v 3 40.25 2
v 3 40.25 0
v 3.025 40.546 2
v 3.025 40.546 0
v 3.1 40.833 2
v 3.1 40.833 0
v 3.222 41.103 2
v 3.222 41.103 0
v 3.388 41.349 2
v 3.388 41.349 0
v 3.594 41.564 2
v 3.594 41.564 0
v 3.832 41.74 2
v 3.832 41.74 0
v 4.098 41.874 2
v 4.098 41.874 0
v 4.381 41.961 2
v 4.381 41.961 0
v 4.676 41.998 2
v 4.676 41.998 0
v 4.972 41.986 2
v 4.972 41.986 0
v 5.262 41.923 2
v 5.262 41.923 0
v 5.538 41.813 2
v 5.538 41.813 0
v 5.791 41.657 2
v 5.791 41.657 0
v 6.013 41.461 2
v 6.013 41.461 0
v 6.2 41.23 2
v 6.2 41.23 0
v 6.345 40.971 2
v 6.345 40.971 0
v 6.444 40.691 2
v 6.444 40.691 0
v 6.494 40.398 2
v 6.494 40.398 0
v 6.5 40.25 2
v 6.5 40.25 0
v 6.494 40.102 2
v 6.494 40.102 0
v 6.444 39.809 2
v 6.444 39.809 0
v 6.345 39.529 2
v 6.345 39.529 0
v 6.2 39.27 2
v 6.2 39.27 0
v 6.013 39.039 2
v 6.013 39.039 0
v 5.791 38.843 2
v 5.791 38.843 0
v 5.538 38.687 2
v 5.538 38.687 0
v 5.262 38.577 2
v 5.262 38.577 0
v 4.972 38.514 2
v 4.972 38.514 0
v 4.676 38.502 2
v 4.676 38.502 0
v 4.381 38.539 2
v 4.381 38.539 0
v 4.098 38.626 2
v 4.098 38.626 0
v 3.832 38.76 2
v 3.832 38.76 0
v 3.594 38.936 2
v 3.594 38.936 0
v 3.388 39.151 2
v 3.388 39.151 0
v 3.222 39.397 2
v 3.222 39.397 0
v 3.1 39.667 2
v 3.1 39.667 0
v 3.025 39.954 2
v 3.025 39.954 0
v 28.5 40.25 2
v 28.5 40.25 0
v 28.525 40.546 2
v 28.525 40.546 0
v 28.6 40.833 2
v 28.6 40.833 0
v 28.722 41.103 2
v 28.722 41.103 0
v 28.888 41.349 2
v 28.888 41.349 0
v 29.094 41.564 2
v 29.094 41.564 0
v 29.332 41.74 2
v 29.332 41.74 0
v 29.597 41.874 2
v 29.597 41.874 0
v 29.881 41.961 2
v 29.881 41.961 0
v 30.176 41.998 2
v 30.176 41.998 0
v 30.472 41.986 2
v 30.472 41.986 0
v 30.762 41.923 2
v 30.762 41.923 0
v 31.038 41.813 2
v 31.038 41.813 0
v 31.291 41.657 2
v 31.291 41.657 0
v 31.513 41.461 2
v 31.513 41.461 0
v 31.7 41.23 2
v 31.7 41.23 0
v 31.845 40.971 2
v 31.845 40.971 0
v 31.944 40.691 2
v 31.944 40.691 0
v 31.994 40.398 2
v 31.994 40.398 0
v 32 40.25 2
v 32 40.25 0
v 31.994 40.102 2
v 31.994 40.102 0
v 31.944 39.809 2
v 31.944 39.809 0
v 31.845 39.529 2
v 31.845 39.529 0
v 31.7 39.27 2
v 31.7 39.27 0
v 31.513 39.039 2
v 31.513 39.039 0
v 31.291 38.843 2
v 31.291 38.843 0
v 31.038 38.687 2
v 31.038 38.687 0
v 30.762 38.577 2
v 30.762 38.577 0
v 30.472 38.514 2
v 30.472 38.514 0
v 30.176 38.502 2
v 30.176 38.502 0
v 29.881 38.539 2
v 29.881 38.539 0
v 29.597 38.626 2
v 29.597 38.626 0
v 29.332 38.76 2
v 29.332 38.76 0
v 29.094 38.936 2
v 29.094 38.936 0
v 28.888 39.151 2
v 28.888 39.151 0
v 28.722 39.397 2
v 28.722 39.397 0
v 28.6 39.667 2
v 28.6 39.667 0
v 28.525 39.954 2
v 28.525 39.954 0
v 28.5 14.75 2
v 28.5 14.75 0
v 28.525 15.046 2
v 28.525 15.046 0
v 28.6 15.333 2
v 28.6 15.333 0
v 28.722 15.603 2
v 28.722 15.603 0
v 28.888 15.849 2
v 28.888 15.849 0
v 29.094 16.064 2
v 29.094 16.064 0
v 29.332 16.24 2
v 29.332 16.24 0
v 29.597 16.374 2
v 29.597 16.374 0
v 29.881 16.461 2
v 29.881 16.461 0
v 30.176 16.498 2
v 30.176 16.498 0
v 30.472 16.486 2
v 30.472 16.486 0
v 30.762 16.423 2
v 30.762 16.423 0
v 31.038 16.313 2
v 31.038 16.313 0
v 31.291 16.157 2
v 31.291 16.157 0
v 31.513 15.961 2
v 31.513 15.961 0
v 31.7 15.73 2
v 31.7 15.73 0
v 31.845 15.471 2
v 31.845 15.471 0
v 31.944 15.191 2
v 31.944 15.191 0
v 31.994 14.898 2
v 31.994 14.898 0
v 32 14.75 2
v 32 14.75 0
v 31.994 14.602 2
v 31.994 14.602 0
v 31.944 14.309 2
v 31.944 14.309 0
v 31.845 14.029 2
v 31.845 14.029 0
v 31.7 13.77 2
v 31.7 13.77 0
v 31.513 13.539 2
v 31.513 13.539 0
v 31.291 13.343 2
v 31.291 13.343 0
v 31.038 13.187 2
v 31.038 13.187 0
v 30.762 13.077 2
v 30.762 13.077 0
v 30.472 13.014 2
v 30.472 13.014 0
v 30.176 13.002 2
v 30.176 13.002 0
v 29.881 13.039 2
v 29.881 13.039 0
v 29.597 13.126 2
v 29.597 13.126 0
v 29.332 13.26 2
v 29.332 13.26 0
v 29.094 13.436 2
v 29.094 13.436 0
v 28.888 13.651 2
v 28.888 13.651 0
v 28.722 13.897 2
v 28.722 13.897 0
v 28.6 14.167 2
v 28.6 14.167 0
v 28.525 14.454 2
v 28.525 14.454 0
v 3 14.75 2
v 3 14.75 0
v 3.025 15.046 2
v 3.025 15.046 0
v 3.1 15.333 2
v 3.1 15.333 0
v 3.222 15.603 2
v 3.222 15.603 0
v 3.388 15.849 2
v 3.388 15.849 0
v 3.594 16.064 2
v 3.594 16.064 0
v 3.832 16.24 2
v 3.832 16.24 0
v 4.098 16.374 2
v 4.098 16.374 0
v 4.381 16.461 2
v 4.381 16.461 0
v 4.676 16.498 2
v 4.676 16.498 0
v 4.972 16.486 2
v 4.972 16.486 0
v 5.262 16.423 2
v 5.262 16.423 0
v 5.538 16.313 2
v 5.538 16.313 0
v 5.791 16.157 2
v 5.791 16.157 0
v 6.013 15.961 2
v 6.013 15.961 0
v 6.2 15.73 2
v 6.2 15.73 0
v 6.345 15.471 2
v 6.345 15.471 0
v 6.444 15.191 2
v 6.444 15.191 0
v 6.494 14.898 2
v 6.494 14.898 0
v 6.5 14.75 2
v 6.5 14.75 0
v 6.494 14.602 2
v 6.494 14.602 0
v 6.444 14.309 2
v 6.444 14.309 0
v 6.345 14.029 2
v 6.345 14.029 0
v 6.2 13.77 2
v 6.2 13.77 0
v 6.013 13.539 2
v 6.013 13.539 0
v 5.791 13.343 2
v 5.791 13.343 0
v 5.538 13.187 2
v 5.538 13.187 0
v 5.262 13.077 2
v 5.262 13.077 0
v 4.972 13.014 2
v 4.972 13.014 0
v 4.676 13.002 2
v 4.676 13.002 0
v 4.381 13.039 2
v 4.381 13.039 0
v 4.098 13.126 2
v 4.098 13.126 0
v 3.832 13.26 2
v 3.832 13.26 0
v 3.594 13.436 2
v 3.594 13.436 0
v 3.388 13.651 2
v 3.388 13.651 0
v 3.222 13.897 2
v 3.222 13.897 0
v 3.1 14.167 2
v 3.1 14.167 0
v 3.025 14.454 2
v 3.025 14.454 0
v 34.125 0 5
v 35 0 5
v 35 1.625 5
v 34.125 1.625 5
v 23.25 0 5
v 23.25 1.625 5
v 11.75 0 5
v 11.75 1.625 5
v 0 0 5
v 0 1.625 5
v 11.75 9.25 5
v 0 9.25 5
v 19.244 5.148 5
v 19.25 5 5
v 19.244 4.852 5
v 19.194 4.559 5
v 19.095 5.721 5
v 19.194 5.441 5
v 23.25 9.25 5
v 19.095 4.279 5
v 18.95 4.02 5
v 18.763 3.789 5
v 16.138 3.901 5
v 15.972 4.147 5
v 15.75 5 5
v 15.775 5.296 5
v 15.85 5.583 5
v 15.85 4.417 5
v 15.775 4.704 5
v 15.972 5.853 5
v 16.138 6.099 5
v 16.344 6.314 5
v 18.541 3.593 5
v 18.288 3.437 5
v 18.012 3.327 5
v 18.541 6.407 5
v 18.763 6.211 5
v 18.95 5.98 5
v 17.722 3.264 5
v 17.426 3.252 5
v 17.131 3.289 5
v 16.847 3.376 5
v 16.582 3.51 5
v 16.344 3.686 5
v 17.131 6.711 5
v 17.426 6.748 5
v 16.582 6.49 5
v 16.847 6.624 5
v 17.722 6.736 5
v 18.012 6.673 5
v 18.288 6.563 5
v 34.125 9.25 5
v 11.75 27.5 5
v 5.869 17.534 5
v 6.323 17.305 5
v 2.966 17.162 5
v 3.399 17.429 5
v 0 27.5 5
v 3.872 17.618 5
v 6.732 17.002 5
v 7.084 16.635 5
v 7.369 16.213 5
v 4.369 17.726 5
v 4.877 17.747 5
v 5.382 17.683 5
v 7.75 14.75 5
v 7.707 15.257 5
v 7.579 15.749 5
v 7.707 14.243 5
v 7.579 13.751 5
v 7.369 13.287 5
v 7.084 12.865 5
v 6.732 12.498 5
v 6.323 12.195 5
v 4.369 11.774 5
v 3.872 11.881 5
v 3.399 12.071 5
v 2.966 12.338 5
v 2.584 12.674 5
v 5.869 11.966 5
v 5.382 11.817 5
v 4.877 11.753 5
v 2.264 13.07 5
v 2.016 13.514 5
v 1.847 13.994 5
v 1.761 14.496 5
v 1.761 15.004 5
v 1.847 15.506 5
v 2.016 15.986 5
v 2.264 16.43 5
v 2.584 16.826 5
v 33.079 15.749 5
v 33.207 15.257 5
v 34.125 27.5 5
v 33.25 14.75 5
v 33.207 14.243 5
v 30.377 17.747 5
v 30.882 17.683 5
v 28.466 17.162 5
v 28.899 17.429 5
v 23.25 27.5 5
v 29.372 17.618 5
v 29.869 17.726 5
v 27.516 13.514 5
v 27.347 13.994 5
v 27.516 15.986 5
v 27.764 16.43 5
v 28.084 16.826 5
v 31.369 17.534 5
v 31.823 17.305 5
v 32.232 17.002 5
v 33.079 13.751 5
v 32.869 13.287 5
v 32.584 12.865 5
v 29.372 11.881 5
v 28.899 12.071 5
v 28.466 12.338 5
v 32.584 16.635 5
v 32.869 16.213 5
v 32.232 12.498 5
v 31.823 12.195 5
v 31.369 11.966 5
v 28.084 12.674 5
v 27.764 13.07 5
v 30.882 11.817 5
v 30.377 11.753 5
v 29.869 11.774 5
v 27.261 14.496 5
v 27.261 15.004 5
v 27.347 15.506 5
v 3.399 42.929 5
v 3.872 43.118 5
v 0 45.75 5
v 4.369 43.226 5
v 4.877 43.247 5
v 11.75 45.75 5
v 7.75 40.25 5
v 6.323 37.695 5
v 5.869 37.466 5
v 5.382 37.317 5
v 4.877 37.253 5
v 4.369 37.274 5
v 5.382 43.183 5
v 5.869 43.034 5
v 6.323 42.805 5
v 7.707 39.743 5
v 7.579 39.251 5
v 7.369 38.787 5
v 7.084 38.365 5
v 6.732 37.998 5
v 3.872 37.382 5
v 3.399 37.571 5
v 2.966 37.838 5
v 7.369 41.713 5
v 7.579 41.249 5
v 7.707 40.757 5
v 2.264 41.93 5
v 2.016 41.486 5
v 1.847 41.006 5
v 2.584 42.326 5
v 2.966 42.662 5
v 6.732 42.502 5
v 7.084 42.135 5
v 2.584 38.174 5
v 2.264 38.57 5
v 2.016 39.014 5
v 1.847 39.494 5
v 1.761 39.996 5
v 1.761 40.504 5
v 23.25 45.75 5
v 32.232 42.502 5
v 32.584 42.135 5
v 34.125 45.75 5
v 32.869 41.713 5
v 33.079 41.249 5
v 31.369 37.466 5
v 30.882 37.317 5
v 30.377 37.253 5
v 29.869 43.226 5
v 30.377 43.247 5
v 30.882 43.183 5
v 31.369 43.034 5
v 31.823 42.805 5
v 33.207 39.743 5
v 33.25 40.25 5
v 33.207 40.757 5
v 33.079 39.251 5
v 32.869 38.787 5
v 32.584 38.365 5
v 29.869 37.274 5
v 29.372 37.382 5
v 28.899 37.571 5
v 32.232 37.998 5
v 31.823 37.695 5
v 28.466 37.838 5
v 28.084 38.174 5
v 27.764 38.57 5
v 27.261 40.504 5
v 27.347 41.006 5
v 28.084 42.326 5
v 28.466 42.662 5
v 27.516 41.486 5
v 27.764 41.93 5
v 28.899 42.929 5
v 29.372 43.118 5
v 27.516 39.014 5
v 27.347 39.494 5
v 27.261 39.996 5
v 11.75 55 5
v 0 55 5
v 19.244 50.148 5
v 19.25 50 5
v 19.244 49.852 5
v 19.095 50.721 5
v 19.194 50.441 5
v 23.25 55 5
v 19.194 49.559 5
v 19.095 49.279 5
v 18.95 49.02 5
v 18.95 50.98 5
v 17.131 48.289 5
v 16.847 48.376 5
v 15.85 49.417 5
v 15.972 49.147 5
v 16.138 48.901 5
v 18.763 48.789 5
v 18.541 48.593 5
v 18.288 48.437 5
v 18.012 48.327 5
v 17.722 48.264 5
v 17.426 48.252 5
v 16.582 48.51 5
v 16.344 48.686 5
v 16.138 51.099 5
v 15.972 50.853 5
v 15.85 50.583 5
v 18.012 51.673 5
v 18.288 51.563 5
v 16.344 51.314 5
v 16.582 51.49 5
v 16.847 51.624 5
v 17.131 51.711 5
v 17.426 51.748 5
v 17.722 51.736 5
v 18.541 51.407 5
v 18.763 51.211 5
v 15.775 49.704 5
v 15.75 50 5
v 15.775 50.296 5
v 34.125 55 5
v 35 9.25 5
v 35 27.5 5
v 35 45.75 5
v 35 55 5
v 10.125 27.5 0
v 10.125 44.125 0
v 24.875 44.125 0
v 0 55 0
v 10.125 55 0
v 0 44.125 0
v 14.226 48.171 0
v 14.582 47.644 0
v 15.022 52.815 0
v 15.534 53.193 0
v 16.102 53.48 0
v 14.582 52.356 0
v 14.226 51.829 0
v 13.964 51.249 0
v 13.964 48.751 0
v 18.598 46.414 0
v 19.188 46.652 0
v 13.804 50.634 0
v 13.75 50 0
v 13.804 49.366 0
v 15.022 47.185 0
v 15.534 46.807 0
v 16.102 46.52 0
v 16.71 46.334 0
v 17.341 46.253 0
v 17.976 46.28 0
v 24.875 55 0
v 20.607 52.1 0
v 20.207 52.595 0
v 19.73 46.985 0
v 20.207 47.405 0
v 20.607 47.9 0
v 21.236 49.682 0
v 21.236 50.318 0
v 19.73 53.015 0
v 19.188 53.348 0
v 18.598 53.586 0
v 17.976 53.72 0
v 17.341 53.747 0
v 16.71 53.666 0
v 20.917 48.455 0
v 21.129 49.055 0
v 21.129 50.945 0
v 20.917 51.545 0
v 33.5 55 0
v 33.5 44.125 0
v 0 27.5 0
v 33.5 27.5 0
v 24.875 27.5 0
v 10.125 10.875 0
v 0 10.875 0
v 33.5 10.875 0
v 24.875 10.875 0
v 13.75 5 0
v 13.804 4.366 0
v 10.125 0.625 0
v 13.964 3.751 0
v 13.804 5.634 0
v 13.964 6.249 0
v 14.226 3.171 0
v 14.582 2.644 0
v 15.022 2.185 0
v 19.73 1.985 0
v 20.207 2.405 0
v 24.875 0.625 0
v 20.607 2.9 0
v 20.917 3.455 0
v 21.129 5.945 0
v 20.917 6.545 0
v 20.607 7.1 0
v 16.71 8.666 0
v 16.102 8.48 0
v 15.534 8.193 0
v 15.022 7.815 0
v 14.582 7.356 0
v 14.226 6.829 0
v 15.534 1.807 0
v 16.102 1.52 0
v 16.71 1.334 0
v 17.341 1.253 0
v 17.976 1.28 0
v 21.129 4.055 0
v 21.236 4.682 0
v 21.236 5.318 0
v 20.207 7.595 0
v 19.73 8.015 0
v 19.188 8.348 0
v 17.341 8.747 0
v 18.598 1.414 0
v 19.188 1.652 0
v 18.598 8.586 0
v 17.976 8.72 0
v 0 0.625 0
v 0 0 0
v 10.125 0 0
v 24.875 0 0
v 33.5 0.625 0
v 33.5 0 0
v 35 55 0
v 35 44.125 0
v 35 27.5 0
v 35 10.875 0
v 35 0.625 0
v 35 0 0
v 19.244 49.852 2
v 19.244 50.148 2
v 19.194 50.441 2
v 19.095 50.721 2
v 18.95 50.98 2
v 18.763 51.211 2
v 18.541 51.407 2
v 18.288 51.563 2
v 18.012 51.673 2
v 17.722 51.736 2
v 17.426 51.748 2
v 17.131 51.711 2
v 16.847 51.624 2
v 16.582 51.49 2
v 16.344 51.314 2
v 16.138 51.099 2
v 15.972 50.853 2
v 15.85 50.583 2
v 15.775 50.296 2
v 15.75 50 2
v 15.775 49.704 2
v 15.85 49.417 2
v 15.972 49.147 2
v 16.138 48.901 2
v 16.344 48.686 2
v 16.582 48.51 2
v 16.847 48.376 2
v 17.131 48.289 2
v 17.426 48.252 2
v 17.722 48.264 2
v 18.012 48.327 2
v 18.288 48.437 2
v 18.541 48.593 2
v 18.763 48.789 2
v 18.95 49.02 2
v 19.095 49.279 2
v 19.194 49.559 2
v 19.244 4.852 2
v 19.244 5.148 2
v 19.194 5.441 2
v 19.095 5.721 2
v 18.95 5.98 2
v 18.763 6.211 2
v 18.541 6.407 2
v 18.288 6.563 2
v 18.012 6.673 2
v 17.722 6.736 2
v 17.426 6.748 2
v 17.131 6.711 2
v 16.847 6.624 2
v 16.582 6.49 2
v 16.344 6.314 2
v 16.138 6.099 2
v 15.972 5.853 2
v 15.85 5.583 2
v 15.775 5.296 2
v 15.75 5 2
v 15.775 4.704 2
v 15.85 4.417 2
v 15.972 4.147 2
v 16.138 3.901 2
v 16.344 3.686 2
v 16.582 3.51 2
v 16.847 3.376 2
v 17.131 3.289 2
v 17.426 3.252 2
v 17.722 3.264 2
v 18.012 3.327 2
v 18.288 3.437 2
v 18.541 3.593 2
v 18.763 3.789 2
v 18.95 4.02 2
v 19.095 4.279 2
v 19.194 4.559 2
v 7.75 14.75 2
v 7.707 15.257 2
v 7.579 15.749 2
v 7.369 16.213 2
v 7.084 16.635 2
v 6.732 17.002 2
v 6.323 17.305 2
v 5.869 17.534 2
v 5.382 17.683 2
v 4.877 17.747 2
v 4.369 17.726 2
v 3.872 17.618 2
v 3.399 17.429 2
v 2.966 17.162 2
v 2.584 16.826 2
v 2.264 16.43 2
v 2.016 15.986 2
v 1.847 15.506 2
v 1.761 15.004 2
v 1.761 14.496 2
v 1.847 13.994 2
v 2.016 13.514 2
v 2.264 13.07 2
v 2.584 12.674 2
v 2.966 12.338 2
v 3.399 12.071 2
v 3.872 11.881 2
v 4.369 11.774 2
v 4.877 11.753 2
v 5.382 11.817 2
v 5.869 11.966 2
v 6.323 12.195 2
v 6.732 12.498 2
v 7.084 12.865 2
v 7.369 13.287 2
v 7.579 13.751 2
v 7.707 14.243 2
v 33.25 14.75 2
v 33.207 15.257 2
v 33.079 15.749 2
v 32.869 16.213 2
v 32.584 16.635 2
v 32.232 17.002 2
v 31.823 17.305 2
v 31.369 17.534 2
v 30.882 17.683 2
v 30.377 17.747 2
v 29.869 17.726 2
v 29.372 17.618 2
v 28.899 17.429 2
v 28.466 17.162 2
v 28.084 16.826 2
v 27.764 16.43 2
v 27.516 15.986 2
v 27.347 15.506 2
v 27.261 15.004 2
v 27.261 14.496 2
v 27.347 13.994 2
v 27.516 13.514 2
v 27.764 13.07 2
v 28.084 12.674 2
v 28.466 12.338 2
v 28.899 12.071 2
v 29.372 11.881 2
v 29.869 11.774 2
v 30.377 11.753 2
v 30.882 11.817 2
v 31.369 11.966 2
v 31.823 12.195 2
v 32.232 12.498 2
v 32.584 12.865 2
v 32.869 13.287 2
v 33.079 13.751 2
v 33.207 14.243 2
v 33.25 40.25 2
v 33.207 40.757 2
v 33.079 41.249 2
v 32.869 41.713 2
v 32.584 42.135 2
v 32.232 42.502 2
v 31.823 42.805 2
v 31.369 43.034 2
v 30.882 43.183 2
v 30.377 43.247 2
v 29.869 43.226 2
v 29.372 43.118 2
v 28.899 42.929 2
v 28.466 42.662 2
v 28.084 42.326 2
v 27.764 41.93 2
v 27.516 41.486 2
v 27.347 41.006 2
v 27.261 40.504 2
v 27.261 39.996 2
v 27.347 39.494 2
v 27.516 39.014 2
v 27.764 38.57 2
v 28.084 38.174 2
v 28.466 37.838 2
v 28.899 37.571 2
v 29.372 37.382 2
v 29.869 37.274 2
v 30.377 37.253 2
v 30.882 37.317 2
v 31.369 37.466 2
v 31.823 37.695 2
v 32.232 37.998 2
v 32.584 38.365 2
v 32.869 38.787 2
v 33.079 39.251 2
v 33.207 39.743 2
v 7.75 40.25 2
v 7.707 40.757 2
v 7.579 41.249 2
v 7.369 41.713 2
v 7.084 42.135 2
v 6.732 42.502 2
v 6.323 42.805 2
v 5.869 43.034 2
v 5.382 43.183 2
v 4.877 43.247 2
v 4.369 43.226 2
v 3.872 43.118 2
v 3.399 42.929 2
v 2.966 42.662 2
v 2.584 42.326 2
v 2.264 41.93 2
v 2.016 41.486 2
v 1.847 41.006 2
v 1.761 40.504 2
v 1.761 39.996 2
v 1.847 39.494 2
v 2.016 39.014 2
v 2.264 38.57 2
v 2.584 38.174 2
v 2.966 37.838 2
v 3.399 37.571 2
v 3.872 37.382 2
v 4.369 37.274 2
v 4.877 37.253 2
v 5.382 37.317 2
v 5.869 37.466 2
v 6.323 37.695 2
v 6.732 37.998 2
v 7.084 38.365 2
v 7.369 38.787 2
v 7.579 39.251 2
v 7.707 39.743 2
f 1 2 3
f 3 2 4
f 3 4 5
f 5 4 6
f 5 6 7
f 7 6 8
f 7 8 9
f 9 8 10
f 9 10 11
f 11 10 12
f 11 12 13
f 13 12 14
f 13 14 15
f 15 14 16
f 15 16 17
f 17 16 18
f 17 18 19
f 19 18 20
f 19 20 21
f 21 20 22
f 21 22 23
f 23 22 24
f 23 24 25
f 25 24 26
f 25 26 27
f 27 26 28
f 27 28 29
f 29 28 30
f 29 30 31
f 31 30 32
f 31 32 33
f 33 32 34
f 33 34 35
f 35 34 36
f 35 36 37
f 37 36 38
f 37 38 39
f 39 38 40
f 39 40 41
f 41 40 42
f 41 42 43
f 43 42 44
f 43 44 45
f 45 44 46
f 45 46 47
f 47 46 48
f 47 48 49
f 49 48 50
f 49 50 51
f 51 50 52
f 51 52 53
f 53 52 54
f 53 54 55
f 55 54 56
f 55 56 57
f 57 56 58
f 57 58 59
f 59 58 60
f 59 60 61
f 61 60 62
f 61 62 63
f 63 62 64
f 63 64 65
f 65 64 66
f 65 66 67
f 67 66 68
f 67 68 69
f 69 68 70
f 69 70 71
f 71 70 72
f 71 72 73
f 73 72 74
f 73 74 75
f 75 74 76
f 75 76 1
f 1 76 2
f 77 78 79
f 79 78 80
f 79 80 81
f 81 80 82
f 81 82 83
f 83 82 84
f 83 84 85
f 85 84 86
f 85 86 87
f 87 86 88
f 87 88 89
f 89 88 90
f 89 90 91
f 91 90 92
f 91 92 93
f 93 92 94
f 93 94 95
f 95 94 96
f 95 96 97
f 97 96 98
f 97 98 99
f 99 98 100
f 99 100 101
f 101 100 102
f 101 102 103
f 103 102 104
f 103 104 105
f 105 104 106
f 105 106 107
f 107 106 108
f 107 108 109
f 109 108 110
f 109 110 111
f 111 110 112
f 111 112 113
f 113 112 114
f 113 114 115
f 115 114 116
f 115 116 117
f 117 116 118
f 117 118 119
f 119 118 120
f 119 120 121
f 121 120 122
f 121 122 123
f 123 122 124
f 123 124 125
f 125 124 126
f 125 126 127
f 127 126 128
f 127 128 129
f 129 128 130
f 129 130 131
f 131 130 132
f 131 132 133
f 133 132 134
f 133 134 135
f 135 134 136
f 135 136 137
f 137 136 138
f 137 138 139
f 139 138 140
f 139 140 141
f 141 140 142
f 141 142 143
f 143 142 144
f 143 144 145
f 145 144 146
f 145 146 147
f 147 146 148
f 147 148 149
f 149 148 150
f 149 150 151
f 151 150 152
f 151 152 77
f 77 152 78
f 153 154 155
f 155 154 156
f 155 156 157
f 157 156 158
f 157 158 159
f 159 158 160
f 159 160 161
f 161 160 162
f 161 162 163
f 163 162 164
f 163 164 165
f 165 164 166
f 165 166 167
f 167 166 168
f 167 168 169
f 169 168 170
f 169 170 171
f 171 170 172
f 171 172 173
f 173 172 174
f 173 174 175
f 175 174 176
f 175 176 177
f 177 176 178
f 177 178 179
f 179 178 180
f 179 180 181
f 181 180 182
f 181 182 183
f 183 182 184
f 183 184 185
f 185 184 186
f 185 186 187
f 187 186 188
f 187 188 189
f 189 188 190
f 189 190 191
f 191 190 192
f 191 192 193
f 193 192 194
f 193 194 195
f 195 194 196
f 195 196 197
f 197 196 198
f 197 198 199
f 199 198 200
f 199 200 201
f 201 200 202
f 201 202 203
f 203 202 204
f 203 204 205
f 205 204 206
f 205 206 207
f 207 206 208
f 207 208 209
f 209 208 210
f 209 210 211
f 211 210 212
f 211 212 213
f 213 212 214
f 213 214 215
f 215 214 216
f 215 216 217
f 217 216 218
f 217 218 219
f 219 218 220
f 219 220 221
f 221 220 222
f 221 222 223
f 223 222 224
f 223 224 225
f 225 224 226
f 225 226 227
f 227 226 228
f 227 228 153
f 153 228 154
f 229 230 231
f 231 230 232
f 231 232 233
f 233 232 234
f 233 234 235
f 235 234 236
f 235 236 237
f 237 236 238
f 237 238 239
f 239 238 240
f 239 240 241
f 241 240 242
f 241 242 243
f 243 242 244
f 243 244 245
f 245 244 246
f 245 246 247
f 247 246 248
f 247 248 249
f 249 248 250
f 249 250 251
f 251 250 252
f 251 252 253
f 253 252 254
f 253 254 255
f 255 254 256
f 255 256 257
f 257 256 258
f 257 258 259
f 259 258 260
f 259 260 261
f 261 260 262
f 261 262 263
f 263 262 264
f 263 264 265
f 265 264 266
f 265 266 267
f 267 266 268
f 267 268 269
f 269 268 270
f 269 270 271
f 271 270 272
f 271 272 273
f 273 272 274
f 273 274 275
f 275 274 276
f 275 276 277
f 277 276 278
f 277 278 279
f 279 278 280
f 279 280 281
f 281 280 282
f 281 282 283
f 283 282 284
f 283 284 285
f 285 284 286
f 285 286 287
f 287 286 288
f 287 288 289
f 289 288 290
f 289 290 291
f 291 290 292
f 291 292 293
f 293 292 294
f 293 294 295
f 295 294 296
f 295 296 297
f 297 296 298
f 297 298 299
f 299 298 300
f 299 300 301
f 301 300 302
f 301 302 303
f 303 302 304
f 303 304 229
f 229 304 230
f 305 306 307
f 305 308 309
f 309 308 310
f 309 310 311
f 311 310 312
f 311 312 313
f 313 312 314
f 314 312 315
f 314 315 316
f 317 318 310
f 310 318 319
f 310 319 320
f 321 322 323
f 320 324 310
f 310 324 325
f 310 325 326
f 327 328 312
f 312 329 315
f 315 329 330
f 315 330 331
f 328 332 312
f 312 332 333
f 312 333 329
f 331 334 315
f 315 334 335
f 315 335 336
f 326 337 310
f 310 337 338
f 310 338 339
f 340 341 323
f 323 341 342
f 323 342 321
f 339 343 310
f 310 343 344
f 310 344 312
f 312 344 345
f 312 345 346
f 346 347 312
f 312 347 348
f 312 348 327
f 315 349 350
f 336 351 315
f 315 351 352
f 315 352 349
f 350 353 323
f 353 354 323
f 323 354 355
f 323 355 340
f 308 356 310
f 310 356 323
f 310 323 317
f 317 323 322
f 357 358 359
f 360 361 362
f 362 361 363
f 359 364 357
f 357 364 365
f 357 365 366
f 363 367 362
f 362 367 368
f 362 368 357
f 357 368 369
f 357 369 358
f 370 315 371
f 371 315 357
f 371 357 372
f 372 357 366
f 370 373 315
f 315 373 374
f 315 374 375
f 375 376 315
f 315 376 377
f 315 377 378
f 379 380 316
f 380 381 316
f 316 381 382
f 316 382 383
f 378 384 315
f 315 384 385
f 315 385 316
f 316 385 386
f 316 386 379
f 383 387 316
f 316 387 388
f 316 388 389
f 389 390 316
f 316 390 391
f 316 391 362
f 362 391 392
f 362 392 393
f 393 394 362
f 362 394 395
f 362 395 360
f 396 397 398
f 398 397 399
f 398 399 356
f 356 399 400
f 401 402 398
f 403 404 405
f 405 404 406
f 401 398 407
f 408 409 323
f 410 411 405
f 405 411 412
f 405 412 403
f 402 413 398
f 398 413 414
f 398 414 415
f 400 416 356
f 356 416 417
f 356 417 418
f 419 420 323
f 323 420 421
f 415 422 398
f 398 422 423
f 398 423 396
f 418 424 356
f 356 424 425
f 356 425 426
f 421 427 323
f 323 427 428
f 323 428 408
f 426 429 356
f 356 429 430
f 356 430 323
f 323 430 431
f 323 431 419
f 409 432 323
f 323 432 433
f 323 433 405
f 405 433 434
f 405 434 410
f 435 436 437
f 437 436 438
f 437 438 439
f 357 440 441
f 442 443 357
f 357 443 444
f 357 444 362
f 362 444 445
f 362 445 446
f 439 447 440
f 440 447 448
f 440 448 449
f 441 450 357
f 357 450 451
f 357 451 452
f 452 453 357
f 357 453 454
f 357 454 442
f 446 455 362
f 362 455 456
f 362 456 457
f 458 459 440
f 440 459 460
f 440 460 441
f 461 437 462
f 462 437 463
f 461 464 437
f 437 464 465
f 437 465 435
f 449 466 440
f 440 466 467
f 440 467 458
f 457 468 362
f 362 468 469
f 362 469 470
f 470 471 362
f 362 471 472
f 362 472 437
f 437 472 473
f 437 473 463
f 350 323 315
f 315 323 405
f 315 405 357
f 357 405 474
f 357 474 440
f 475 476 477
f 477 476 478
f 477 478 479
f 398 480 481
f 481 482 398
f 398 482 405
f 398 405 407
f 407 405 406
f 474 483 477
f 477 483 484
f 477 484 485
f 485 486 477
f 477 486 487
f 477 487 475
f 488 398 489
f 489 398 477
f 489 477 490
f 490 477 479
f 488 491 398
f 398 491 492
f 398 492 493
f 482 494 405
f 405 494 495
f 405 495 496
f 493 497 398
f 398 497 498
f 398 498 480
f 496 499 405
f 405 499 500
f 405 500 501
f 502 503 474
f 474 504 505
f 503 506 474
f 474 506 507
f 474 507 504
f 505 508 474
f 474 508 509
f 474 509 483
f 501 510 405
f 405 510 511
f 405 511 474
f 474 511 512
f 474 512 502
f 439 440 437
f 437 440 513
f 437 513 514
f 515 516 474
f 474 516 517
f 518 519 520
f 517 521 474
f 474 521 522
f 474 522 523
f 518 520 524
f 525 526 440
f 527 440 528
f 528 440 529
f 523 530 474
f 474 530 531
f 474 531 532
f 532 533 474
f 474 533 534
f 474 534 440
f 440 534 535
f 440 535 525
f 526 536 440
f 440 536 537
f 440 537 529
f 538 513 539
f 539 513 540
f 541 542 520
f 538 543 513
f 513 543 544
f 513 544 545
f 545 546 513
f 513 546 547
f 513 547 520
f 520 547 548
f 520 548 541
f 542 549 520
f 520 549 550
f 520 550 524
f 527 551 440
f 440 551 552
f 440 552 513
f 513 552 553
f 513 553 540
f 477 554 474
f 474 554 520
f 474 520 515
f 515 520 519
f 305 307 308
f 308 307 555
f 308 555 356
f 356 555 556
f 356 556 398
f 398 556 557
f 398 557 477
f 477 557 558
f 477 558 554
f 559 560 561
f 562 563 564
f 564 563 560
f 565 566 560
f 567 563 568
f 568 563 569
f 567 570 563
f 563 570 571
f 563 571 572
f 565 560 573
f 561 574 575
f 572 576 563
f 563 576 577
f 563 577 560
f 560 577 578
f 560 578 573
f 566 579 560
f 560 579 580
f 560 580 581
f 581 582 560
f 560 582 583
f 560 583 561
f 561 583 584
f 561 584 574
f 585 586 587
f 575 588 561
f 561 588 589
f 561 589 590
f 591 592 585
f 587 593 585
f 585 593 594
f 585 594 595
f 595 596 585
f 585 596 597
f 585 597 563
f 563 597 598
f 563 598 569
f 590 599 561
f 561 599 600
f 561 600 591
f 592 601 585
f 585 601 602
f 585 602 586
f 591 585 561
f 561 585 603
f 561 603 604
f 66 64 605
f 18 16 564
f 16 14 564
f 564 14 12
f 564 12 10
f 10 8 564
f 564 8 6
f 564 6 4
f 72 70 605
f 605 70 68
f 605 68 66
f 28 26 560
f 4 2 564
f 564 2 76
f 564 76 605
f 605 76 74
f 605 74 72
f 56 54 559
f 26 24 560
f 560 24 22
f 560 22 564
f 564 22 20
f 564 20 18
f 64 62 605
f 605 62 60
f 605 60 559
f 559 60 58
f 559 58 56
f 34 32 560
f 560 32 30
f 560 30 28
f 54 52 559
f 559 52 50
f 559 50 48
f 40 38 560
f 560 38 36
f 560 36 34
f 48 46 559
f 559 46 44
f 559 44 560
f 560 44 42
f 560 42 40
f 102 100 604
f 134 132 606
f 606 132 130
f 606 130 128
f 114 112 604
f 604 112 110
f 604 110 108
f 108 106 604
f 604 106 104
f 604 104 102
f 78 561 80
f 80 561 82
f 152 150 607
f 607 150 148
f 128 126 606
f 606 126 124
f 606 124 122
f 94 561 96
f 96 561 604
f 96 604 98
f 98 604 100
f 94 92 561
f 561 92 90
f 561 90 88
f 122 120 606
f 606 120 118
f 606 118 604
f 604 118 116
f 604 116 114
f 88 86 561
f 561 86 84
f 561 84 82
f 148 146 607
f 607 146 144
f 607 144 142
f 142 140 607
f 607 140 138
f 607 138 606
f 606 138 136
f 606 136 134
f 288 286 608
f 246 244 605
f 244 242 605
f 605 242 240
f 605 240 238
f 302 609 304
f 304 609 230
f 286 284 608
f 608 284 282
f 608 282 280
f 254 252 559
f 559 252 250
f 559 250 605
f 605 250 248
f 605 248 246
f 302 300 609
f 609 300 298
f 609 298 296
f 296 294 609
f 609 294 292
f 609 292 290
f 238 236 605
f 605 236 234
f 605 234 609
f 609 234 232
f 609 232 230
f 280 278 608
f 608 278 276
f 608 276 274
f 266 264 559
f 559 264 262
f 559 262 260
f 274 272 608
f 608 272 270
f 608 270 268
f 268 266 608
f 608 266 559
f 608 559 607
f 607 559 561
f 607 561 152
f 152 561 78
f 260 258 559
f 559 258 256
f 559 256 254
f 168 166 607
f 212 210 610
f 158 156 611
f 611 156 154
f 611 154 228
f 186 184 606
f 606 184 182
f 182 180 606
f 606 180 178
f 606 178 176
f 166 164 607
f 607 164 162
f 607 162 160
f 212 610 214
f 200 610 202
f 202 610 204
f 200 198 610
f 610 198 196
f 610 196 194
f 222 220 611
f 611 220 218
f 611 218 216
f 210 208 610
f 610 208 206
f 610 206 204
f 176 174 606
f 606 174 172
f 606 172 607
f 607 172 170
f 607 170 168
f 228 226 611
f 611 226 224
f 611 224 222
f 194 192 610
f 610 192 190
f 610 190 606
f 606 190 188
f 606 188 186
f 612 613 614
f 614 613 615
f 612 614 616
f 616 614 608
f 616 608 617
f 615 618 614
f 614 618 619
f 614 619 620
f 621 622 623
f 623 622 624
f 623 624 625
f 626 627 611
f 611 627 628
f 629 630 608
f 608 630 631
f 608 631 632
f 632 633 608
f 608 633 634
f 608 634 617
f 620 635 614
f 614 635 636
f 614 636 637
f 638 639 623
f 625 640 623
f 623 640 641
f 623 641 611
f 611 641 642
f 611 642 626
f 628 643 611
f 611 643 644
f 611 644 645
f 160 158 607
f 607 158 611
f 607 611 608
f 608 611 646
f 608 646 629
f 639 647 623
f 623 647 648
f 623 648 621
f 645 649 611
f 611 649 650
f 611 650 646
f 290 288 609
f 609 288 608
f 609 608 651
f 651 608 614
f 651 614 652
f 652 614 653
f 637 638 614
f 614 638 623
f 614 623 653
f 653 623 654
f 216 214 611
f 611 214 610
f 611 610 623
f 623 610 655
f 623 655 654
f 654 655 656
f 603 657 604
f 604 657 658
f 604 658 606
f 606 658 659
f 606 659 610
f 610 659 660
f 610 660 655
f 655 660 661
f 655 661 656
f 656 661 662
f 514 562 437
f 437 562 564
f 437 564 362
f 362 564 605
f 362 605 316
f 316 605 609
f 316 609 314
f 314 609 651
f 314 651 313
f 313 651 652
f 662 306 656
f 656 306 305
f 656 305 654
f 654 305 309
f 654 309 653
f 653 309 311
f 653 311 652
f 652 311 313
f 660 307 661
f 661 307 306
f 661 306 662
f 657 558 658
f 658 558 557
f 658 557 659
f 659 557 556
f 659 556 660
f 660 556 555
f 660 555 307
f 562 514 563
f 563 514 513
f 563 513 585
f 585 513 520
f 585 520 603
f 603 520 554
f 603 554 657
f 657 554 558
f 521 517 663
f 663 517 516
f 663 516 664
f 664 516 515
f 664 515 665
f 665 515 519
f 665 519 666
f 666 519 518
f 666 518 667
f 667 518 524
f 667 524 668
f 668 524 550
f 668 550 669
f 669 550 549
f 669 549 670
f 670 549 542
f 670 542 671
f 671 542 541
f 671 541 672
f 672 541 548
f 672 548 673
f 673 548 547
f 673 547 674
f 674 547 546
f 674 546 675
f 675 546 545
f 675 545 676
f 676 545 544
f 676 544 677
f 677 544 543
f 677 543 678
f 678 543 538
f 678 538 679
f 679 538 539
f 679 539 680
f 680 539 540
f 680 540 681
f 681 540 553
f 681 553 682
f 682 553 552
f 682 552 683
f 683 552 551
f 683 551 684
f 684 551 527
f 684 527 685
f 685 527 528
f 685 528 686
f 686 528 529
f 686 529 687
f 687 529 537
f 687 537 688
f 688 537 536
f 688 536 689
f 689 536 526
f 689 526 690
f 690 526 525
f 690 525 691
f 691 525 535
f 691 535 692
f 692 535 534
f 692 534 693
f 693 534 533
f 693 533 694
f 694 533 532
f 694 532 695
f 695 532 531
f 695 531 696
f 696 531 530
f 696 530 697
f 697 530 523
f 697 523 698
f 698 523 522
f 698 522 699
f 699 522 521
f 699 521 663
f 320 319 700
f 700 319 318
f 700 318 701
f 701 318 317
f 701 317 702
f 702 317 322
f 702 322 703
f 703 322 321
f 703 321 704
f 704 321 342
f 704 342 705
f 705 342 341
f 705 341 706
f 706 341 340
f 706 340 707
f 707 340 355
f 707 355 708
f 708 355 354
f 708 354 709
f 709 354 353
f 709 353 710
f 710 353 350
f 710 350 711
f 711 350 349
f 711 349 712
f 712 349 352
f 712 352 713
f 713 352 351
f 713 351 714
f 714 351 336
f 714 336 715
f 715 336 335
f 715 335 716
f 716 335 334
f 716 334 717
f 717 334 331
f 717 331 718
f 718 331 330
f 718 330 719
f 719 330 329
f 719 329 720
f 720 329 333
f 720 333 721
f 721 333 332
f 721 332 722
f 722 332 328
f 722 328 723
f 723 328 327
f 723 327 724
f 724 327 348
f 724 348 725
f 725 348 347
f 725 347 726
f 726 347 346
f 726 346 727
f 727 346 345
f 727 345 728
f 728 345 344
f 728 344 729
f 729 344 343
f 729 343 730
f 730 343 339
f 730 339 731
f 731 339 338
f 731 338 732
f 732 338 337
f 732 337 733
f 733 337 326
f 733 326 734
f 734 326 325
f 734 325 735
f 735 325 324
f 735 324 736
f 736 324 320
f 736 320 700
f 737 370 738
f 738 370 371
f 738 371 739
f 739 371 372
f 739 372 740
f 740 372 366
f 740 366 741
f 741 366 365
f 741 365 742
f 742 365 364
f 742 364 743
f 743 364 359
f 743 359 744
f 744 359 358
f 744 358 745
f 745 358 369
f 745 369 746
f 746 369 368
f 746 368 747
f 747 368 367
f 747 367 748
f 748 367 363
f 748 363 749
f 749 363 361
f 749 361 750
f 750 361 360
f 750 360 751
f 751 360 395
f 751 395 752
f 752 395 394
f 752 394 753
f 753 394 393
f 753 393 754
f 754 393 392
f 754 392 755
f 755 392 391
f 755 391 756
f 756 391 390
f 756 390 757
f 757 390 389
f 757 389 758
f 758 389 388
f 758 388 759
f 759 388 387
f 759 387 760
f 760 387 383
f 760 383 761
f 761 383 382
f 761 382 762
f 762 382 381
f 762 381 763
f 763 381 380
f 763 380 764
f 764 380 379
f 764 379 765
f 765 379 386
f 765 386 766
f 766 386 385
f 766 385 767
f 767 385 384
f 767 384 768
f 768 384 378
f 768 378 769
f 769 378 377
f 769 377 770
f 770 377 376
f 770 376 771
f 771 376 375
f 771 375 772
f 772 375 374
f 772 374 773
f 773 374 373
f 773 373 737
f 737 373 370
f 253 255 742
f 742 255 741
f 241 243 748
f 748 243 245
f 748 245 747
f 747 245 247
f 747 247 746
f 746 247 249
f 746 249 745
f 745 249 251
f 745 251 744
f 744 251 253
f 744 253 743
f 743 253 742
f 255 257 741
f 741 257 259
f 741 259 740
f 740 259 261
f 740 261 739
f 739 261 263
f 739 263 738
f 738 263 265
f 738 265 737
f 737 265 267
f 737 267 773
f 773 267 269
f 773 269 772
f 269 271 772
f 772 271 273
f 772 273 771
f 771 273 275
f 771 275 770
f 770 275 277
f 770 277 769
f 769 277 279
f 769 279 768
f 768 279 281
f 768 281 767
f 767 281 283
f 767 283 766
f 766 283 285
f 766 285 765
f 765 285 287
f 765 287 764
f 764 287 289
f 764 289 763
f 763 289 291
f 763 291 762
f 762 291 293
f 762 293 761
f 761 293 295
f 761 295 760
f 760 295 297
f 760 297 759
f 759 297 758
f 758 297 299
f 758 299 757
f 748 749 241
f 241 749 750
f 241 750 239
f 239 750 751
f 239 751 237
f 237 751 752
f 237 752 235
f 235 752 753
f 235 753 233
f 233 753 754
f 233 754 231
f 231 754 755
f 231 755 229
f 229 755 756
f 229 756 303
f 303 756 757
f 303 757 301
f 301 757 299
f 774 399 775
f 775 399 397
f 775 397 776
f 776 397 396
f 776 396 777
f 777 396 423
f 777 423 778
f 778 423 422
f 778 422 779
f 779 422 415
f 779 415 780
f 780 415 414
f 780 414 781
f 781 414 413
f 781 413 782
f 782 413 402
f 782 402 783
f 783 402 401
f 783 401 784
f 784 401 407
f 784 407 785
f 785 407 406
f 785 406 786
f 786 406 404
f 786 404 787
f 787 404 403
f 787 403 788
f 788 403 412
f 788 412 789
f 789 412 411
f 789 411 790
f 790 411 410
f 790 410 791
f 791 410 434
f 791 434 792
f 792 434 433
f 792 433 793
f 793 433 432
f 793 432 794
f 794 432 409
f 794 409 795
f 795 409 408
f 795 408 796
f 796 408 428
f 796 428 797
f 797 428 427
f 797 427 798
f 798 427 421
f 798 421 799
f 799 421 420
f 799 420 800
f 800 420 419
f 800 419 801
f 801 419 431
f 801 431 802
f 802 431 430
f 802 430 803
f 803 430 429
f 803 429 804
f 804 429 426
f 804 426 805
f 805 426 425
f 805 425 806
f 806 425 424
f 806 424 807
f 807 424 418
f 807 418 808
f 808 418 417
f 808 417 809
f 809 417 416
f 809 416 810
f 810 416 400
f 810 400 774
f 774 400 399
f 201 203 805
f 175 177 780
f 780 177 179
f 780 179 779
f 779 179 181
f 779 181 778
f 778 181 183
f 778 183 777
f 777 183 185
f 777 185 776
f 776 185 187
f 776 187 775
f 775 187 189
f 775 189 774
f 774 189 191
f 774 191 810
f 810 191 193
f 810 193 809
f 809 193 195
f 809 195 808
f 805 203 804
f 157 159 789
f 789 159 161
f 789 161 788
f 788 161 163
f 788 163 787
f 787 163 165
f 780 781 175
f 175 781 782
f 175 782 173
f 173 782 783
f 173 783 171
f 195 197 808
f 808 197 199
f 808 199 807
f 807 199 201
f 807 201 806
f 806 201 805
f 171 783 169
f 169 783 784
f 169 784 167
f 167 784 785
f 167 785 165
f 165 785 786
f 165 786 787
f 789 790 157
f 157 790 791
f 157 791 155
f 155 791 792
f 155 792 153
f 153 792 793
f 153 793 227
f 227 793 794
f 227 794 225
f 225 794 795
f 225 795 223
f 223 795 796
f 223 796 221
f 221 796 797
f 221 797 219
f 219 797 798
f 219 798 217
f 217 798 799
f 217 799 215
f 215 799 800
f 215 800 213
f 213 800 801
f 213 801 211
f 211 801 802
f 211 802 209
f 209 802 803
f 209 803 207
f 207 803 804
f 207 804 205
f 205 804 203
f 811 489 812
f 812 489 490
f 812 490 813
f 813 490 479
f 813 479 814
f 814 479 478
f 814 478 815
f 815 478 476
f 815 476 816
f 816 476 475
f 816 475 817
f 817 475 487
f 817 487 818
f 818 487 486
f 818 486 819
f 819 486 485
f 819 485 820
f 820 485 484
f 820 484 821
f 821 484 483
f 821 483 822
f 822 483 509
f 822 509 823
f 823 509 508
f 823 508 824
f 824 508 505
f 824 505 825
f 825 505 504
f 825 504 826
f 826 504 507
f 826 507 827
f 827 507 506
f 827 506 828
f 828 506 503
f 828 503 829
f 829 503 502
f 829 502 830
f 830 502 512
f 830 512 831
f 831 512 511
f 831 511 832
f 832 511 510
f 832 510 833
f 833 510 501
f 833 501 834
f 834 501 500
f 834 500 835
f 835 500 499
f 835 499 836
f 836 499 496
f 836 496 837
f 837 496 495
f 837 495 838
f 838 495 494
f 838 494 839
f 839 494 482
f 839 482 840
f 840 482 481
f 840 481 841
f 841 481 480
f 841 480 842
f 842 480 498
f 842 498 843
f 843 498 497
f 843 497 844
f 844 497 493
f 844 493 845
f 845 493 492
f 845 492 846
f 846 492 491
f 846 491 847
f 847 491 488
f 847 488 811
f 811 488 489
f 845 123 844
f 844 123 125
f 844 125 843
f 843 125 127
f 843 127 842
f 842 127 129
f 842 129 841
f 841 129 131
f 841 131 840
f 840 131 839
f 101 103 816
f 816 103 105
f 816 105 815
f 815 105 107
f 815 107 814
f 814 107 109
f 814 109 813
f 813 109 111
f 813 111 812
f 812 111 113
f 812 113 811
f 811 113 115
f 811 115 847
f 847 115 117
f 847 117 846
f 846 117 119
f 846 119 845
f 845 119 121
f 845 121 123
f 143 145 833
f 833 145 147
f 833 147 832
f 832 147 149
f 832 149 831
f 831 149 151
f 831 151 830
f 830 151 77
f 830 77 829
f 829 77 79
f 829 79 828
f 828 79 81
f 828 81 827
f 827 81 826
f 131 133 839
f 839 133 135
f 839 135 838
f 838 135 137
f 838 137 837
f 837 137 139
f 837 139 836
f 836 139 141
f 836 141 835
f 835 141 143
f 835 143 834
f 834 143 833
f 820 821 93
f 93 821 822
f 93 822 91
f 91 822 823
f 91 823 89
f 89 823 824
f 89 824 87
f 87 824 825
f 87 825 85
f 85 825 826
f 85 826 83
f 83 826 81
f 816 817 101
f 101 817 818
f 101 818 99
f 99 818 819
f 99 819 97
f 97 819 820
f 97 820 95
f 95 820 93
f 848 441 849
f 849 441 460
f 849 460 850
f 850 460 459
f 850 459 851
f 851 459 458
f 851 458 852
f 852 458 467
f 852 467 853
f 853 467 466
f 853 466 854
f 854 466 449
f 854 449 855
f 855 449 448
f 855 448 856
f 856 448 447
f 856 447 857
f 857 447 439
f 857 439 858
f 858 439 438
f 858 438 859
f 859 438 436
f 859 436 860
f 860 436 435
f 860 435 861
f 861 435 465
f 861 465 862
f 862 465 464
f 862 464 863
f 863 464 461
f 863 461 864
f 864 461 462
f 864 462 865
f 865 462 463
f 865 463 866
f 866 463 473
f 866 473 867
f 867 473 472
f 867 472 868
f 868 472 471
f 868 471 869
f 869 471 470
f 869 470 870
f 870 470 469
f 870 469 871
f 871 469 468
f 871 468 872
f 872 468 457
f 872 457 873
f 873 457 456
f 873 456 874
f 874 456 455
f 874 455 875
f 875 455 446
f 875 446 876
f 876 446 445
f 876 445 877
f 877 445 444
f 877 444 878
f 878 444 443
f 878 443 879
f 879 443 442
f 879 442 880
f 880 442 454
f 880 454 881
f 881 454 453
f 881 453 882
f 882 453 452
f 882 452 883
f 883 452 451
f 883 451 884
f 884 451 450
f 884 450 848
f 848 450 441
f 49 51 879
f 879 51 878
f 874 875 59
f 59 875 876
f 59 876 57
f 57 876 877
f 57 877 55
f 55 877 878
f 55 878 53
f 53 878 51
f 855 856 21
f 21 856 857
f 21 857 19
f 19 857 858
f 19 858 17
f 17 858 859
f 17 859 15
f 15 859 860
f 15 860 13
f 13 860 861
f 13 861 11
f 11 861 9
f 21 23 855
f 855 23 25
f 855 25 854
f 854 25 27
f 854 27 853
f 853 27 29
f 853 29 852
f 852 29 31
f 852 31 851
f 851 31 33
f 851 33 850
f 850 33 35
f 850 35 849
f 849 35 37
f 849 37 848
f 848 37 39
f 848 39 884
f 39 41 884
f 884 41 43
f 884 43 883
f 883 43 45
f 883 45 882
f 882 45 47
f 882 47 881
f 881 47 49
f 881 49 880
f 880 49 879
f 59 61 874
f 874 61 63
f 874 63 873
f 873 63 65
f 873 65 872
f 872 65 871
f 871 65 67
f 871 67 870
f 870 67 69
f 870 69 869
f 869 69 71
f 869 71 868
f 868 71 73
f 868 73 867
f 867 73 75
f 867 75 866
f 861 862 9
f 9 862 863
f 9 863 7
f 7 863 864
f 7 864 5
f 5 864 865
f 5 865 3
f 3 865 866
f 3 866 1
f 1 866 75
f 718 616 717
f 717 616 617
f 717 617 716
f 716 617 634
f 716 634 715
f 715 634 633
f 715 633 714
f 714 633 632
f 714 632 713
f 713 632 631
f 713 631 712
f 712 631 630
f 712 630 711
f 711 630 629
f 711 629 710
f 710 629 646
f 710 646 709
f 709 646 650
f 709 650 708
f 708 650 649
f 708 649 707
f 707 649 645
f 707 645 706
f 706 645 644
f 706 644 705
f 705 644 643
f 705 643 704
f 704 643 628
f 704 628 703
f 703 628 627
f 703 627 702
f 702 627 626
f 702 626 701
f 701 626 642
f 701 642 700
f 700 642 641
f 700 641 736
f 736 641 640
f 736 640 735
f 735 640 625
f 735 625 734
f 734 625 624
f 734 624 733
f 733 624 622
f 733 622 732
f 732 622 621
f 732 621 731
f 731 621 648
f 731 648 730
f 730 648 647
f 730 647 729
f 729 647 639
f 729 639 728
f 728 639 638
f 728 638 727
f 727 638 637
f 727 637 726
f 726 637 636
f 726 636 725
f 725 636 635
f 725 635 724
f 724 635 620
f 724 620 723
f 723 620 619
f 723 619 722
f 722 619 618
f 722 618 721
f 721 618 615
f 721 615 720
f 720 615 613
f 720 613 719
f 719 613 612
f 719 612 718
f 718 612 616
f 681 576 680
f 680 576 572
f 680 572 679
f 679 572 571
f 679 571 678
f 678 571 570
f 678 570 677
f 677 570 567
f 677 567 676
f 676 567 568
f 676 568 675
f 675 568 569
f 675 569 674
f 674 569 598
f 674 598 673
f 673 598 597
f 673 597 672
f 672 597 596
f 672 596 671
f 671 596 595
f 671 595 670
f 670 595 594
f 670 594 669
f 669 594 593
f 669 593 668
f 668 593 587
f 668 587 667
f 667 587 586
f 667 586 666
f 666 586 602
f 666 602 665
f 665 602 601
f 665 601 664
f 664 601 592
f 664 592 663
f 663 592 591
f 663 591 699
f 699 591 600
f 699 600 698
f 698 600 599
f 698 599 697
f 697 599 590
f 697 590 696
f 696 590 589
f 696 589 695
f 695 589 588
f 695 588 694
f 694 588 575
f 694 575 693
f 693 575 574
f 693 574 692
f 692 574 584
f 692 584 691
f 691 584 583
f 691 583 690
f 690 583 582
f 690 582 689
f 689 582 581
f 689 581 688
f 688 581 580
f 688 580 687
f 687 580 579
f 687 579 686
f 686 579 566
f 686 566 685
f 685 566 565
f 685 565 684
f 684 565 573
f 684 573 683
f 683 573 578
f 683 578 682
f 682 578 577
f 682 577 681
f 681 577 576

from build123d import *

# Parameters (mm, degrees)
SKETCH1_W           = 35
SKETCH1_H           = 55
SKETCH1_R           = 1.75
BOSS_EXTRUDE1_DEPTH = 5
SKETCH2_R           = 3
CUT_EXTRUDE1_DEPTH  = 3
CHAMFER1_SIZE       = 2


with BuildPart() as part:
    # Sketch1 → Boss-Extrude1 (new body)
    with BuildSketch(Plane.XY):
        with Locations((17.5, 27.5)):
            Rectangle(SKETCH1_W, SKETCH1_H)
        with Locations((4.75, 40.25)):
            Circle(SKETCH1_R, mode=Mode.SUBTRACT)
        with Locations((30.25, 40.25)):
            Circle(SKETCH1_R, mode=Mode.SUBTRACT)
        with Locations((30.25, 14.75)):
            Circle(SKETCH1_R, mode=Mode.SUBTRACT)
        with Locations((4.75, 14.75)):
            Circle(SKETCH1_R, mode=Mode.SUBTRACT)
        with Locations((17.5, 50)):
            Circle(SKETCH1_R, mode=Mode.SUBTRACT)
        with Locations((17.5, 5)):
            Circle(SKETCH1_R, mode=Mode.SUBTRACT)
    extrude(amount=BOSS_EXTRUDE1_DEPTH)

    # Sketch2 → Cut-Extrude1 (cut)
    with BuildSketch(Plane.XY.offset(5)):
        with Locations((4.75, 40.25)):
            Circle(SKETCH2_R)
        with Locations((30.25, 40.25)):
            Circle(SKETCH2_R)
        with Locations((30.25, 14.75)):
            Circle(SKETCH2_R)
        with Locations((4.75, 14.75)):
            Circle(SKETCH2_R)
    extrude(amount=-CUT_EXTRUDE1_DEPTH, mode=Mode.SUBTRACT)

    # Chamfer1
    chamfer1_edges = [part.edges().sort_by_distance(p)[0] for p in [
        (15.75, 50, 0),
        (15.75, 5, 0),
    ]]
    chamfer(chamfer1_edges, length=CHAMFER1_SIZE)


solid = part.part
